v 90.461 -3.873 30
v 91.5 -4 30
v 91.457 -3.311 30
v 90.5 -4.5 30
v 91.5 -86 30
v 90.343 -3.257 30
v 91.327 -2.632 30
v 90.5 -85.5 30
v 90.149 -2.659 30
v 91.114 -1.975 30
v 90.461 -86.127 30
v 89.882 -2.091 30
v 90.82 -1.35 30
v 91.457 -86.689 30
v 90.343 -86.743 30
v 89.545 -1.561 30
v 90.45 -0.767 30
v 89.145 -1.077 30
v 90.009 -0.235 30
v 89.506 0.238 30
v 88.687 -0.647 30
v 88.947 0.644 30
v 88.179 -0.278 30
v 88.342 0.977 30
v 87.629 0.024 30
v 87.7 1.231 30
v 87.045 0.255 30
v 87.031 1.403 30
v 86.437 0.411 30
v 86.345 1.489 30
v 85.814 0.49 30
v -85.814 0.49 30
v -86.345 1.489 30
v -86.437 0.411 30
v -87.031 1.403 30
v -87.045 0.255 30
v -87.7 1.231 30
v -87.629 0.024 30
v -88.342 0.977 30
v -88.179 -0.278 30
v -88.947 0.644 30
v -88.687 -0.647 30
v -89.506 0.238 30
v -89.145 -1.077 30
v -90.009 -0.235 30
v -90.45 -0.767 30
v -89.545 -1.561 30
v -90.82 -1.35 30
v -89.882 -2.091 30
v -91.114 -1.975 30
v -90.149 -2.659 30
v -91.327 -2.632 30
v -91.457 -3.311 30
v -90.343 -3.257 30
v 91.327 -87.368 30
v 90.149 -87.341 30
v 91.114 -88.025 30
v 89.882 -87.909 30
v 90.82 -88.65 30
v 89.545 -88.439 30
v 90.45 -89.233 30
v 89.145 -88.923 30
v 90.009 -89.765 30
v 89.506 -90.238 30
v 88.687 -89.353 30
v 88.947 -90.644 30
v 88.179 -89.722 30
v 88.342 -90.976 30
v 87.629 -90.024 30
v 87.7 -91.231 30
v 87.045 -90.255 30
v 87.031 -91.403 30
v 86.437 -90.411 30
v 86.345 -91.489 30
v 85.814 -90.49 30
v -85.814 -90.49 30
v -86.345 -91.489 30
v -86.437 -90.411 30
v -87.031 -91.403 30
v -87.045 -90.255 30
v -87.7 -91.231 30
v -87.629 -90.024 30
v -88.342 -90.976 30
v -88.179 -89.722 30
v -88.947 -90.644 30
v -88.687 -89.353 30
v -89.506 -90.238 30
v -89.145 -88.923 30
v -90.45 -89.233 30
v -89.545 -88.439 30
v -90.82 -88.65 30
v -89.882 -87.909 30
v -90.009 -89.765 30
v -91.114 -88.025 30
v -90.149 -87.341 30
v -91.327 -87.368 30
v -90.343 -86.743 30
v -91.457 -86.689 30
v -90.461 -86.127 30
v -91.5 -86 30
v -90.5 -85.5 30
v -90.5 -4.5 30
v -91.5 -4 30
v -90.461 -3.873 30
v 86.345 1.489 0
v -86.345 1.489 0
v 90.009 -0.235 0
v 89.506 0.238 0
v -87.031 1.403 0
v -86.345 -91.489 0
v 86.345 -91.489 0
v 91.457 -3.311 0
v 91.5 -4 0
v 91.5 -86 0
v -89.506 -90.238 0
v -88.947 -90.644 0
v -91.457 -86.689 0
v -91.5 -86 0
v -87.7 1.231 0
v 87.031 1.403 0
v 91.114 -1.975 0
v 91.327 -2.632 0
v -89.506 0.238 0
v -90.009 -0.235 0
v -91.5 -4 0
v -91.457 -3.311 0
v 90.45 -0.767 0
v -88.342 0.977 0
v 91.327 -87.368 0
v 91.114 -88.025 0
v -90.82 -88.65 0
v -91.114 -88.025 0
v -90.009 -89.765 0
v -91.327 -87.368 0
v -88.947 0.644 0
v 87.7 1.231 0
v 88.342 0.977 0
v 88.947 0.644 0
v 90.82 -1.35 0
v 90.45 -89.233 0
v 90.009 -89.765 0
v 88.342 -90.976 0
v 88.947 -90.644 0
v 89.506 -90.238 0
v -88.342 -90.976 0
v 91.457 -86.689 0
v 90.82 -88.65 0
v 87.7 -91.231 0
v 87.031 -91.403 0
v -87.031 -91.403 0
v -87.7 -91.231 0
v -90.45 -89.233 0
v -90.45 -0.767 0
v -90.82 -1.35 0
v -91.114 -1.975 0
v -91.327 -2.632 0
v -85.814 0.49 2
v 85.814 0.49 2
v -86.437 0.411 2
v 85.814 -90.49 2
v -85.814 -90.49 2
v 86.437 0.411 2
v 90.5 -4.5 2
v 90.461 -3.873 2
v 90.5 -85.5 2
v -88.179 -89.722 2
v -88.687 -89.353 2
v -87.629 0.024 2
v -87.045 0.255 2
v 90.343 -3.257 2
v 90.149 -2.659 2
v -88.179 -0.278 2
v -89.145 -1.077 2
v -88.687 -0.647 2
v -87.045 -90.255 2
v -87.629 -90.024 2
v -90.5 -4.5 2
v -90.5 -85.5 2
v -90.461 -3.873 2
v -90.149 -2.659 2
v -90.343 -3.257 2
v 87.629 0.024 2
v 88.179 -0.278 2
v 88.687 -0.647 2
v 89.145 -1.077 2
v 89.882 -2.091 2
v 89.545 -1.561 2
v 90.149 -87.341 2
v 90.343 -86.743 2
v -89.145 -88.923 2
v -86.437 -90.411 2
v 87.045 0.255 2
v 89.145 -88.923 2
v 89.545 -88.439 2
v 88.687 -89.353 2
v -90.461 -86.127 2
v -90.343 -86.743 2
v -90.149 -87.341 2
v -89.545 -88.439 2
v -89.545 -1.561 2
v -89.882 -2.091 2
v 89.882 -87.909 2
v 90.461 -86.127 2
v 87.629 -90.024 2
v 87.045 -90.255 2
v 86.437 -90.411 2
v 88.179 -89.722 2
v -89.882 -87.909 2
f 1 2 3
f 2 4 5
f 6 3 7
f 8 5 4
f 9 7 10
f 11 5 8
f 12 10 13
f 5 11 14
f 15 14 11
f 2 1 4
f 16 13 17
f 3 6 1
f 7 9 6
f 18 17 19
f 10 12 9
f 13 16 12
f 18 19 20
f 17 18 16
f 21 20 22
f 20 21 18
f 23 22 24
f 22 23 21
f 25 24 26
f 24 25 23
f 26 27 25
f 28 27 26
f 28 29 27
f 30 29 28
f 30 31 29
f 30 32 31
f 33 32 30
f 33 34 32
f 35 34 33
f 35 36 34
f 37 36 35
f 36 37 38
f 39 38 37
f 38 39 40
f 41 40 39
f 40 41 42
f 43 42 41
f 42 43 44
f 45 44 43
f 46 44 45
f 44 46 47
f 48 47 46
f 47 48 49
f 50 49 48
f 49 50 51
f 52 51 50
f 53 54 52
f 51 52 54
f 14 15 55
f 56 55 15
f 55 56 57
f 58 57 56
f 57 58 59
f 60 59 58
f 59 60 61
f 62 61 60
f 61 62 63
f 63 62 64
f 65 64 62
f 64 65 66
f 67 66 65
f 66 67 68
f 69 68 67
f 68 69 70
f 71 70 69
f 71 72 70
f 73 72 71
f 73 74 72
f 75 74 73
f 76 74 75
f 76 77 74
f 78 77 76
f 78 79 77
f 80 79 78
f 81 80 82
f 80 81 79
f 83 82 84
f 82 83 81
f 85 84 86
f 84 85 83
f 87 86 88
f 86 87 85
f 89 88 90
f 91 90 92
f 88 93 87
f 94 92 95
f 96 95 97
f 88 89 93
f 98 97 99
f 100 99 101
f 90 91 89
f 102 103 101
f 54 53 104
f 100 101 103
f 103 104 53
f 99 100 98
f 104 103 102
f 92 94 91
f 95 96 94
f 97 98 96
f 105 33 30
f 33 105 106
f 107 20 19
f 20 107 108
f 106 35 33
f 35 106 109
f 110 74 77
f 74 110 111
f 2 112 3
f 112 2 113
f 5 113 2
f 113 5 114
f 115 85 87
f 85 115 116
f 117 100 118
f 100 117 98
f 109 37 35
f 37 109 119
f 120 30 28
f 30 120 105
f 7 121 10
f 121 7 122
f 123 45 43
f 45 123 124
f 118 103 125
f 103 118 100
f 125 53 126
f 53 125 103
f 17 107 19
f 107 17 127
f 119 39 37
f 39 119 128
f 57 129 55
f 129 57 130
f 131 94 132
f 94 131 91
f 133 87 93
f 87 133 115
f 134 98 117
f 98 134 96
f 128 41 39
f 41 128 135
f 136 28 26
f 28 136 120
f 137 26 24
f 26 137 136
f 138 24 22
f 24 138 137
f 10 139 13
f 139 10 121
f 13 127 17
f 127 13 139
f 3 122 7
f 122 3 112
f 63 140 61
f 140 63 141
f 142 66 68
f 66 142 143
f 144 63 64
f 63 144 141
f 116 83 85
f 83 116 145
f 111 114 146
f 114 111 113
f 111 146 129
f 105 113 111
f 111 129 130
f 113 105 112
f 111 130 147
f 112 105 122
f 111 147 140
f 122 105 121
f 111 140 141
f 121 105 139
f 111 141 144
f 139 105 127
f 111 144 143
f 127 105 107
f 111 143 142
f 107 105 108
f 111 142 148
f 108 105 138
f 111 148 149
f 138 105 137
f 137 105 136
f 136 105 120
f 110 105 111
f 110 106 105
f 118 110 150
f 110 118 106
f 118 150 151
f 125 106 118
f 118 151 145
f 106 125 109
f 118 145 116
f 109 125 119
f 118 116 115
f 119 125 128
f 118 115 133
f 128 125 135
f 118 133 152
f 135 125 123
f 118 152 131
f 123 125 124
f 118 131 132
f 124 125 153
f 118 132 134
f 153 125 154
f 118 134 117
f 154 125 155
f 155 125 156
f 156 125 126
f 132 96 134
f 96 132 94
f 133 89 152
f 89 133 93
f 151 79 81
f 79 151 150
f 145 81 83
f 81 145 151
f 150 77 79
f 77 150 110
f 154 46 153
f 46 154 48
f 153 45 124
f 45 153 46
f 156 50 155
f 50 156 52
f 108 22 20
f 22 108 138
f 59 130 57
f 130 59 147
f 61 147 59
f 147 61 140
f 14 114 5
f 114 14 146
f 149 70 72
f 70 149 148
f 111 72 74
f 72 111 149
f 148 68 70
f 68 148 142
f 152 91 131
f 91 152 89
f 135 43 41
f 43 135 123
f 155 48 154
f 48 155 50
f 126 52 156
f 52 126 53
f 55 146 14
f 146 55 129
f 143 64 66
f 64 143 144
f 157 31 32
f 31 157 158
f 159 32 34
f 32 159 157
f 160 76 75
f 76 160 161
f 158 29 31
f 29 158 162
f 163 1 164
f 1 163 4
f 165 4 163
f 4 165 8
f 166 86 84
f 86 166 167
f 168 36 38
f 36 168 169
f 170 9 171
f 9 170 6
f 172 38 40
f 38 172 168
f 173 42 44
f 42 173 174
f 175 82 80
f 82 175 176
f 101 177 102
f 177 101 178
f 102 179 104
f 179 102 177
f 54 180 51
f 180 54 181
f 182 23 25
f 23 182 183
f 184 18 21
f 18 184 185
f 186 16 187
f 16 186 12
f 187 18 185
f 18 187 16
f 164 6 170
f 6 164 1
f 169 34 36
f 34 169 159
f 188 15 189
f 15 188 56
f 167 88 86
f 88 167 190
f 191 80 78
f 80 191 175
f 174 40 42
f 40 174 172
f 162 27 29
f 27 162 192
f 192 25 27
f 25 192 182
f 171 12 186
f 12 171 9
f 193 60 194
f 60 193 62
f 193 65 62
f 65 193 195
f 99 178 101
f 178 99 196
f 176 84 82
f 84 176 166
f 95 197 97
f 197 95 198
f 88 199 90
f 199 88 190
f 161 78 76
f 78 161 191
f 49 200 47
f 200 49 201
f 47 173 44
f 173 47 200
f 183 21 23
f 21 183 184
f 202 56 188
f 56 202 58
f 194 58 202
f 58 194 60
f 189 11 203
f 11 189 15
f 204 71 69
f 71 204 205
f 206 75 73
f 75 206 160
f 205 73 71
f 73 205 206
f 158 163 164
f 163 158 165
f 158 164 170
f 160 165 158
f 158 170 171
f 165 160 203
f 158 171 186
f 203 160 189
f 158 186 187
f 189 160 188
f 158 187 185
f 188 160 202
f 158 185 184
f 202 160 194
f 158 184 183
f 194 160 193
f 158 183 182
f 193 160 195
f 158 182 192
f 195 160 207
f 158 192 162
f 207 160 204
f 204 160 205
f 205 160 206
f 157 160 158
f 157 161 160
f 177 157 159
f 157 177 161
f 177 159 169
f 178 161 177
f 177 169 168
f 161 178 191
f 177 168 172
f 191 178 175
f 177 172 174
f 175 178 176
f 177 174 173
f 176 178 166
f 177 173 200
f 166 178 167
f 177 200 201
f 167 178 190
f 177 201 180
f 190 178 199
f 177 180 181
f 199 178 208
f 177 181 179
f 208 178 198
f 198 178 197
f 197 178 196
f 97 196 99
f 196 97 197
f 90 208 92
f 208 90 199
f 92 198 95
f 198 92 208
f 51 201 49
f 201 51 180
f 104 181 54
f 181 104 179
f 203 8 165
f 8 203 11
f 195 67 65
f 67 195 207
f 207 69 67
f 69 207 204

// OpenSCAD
$fn = 50;


difference() {
	union() {
		translate(v = [0, -45.0000000000, 0]) {
			hull() {
				translate(v = [-86.0000000000, 41.0000000000, 0]) {
					cylinder(h = 30, r = 5.5000000000);
				}
				translate(v = [86.0000000000, 41.0000000000, 0]) {
					cylinder(h = 30, r = 5.5000000000);
				}
				translate(v = [-86.0000000000, -41.0000000000, 0]) {
					cylinder(h = 30, r = 5.5000000000);
				}
				translate(v = [86.0000000000, -41.0000000000, 0]) {
					cylinder(h = 30, r = 5.5000000000);
				}
			}
		}
	}
	union() {
		translate(v = [0, -45.0000000000, 2]) {
			hull() {
				translate(v = [-85.5000000000, 40.5000000000, 0]) {
					cylinder(h = 60, r = 5);
				}
				translate(v = [85.5000000000, 40.5000000000, 0]) {
					cylinder(h = 60, r = 5);
				}
				translate(v = [-85.5000000000, -40.5000000000, 0]) {
					cylinder(h = 60, r = 5);
				}
				translate(v = [85.5000000000, -40.5000000000, 0]) {
					cylinder(h = 60, r = 5);
				}
			}
		}
	}
}
